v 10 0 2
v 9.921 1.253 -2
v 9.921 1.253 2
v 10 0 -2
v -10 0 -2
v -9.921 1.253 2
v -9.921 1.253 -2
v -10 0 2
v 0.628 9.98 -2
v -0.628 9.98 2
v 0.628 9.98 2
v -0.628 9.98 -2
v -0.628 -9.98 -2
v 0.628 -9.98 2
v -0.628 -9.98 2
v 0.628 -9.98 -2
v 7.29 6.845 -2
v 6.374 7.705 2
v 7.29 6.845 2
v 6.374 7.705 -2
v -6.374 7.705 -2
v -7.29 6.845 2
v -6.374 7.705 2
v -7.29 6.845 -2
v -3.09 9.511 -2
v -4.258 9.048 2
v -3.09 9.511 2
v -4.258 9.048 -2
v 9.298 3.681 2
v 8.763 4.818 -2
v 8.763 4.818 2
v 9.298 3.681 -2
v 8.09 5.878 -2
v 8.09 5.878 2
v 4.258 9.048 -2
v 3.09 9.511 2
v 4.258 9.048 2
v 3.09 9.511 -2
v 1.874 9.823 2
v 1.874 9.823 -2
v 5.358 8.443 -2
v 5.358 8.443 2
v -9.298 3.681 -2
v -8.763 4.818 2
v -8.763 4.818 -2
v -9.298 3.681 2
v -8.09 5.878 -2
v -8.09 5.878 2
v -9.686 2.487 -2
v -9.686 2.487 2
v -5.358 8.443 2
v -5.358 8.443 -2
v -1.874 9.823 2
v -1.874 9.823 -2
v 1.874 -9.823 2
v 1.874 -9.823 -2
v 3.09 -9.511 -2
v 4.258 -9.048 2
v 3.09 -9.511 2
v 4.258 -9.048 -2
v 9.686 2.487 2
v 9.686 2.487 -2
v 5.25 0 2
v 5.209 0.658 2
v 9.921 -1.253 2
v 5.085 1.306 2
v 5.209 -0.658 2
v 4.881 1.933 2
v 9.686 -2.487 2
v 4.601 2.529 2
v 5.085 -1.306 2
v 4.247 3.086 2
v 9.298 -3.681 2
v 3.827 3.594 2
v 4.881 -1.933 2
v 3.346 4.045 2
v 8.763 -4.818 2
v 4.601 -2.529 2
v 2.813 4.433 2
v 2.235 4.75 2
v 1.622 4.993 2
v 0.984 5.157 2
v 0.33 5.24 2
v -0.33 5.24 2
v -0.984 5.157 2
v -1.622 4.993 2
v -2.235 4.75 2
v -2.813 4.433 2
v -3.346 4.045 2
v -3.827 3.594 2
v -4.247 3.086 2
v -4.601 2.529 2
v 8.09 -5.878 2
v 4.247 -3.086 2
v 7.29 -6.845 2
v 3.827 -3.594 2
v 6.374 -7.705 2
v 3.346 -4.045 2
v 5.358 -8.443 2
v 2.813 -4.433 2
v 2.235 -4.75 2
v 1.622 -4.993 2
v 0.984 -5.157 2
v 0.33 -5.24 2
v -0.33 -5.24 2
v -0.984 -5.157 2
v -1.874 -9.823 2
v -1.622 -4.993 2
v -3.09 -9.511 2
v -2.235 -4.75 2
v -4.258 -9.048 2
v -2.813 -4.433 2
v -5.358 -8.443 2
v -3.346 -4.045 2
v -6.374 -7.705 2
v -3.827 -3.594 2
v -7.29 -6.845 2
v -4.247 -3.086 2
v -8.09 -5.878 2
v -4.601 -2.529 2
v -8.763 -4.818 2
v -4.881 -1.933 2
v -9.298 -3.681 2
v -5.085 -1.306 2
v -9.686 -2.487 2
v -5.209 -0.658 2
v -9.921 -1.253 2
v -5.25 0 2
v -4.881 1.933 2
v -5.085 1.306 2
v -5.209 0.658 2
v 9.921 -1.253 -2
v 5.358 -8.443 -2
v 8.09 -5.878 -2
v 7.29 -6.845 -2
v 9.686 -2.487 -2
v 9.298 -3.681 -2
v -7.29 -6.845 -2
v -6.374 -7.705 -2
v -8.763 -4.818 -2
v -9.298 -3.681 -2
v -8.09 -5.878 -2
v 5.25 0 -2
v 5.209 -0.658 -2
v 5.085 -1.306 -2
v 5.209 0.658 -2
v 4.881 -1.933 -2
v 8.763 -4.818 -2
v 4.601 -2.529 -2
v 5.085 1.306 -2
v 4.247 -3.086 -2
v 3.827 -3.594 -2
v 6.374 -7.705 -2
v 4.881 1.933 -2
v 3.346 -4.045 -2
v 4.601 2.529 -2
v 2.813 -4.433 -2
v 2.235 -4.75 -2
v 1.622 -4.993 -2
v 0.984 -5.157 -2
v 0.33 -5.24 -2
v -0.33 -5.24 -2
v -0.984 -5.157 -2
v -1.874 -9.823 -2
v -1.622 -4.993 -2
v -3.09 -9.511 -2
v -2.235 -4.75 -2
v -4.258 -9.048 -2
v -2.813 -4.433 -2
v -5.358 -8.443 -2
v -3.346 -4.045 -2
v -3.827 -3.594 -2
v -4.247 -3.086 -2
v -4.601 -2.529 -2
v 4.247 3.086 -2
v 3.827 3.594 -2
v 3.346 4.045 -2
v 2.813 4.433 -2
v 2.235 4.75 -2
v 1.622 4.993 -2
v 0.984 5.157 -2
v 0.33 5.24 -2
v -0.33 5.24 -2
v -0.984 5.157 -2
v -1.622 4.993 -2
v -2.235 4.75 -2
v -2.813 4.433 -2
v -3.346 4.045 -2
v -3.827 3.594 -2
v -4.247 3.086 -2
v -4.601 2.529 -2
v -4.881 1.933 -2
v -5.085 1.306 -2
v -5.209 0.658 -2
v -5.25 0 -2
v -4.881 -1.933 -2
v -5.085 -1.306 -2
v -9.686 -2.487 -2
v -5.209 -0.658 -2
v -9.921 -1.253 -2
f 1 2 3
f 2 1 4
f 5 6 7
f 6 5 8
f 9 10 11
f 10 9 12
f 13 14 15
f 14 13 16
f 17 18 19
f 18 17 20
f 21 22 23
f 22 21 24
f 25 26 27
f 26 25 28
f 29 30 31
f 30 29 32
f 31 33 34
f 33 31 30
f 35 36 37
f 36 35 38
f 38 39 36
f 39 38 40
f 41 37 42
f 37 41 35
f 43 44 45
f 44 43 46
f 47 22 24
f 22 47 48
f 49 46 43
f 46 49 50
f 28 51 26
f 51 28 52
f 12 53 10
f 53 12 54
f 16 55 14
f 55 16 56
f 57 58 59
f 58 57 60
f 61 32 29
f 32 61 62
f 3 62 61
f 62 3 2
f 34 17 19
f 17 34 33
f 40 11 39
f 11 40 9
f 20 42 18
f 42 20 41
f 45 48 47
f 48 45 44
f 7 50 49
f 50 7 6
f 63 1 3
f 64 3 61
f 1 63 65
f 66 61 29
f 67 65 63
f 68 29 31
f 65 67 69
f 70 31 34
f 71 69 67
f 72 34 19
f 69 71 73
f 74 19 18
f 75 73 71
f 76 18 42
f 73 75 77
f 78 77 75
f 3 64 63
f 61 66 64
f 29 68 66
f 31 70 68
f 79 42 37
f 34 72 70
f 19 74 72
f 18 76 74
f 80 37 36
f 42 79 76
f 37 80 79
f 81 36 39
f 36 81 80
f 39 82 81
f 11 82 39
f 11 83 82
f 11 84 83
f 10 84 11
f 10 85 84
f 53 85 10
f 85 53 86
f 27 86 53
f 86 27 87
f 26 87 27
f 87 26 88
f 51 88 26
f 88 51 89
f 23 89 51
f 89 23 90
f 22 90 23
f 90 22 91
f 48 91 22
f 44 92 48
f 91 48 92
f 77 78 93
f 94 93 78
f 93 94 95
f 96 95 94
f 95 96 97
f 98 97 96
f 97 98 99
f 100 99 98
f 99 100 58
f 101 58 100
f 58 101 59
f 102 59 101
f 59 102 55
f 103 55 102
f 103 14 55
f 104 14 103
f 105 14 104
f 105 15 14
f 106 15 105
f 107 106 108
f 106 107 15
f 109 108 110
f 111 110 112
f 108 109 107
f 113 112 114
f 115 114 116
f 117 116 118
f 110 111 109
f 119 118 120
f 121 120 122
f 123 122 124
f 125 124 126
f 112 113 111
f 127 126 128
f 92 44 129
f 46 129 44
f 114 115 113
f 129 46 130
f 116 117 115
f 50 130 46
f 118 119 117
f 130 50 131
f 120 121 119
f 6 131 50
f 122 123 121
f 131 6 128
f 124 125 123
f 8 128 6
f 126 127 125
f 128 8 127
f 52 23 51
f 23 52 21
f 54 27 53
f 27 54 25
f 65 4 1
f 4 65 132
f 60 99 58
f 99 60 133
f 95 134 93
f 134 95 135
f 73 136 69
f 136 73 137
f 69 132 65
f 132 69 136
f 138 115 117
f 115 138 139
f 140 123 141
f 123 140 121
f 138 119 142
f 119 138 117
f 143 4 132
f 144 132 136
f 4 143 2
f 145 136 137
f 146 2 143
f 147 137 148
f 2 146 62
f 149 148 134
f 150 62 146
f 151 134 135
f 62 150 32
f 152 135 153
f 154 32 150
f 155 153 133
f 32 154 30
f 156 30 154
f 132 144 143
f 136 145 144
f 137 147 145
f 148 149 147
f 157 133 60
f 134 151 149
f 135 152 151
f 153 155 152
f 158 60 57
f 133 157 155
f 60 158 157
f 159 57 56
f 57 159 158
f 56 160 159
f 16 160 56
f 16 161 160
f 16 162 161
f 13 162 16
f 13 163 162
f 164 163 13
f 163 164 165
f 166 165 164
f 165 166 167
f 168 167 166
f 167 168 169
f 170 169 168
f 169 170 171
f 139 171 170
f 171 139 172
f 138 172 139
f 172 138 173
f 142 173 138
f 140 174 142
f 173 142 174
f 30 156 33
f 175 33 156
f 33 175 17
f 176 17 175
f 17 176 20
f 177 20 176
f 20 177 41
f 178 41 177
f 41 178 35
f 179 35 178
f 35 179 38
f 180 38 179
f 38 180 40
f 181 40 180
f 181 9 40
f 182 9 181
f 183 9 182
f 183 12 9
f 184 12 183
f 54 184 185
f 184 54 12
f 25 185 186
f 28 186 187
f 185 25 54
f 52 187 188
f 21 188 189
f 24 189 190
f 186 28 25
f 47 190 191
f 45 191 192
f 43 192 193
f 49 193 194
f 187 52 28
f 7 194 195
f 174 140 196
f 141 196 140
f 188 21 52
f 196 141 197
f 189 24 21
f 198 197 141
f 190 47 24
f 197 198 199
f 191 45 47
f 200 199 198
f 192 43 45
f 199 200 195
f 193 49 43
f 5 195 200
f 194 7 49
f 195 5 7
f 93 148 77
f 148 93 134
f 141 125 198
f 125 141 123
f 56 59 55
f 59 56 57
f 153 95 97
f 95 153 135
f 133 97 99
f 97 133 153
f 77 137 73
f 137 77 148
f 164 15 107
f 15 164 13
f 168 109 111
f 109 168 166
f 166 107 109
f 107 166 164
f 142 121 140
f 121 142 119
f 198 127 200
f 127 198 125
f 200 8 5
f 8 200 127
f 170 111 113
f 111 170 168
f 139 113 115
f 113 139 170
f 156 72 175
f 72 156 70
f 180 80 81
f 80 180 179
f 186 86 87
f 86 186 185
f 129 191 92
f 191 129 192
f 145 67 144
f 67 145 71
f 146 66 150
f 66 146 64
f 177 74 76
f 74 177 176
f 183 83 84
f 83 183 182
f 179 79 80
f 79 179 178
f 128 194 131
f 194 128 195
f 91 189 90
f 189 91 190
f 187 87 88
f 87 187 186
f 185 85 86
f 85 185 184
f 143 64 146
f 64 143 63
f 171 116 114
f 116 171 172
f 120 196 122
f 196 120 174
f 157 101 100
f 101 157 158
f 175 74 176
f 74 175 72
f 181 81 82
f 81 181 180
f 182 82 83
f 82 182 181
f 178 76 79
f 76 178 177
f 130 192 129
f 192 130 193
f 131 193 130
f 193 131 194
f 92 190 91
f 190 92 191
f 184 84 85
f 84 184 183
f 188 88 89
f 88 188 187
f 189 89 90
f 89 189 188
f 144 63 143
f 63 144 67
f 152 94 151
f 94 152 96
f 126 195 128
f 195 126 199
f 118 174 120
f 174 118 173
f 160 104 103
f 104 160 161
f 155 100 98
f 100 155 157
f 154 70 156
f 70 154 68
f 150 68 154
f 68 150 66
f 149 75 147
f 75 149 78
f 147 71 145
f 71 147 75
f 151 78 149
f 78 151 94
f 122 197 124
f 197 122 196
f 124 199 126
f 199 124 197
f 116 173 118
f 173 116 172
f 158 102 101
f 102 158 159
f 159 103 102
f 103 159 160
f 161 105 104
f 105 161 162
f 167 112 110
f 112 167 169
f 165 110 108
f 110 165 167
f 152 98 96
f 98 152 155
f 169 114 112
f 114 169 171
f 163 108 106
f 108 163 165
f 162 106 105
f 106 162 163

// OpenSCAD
$fn = 50;


difference() {
	union() {
		translate(v = [0, 0, -2.0000000000]) {
			cylinder(h = 4, r = 10.0000000000);
		}
	}
	union() {
		translate(v = [0, 0, -100.0000000000]) {
			cylinder(h = 200, r = 5.2500000000);
		}
	}
}
